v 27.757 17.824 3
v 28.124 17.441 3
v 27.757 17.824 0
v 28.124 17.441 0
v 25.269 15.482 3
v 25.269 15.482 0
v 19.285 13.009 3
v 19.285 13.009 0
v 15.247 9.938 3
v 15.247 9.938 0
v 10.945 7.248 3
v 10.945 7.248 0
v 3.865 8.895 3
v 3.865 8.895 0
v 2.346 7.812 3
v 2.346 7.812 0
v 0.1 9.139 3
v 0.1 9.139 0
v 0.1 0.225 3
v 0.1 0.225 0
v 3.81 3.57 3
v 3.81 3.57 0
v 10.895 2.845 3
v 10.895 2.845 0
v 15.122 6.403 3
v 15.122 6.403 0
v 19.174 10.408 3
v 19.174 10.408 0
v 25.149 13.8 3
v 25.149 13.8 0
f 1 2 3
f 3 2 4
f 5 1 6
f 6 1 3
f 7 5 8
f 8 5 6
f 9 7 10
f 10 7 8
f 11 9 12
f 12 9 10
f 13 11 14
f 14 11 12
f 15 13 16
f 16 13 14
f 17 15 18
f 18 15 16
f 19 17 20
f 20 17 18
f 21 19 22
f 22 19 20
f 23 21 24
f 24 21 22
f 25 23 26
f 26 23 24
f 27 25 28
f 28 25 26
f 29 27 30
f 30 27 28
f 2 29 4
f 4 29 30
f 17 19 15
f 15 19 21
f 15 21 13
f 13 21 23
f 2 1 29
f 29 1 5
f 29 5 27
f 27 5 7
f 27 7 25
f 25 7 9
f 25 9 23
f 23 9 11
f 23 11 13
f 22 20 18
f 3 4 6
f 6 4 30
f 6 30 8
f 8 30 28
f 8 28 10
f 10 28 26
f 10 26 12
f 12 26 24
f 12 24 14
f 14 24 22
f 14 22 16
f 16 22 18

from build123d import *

# Parameters (mm, degrees)
AUFSATZ_LINEAR_AUSTRAGEN1_DEPTH = 3


with BuildPart() as part:
    # Model → Aufsatz-Linear austragen1 (new body)
    with BuildSketch(Plane.XY):
        Polygon((27.757201613, 17.823879819), (25.269410576, 15.48201919), (19.285403887, 13.008865595), (15.246732761, 9.937624528), (10.945087096, 7.248053638), (3.864948468, 8.895369168), (2.346139264, 7.811699181), (0.1, 9.139176818), (0.1, 0.224829603), (3.809633928, 3.57004156), (10.895315766, 2.844989185), (15.122386477, 6.402986505), (19.174325502, 10.407995412), (25.148627395, 13.799695492), (28.124071775, 17.440721322), align=None)
    extrude(amount=AUFSATZ_LINEAR_AUSTRAGEN1_DEPTH)


solid = part.part
